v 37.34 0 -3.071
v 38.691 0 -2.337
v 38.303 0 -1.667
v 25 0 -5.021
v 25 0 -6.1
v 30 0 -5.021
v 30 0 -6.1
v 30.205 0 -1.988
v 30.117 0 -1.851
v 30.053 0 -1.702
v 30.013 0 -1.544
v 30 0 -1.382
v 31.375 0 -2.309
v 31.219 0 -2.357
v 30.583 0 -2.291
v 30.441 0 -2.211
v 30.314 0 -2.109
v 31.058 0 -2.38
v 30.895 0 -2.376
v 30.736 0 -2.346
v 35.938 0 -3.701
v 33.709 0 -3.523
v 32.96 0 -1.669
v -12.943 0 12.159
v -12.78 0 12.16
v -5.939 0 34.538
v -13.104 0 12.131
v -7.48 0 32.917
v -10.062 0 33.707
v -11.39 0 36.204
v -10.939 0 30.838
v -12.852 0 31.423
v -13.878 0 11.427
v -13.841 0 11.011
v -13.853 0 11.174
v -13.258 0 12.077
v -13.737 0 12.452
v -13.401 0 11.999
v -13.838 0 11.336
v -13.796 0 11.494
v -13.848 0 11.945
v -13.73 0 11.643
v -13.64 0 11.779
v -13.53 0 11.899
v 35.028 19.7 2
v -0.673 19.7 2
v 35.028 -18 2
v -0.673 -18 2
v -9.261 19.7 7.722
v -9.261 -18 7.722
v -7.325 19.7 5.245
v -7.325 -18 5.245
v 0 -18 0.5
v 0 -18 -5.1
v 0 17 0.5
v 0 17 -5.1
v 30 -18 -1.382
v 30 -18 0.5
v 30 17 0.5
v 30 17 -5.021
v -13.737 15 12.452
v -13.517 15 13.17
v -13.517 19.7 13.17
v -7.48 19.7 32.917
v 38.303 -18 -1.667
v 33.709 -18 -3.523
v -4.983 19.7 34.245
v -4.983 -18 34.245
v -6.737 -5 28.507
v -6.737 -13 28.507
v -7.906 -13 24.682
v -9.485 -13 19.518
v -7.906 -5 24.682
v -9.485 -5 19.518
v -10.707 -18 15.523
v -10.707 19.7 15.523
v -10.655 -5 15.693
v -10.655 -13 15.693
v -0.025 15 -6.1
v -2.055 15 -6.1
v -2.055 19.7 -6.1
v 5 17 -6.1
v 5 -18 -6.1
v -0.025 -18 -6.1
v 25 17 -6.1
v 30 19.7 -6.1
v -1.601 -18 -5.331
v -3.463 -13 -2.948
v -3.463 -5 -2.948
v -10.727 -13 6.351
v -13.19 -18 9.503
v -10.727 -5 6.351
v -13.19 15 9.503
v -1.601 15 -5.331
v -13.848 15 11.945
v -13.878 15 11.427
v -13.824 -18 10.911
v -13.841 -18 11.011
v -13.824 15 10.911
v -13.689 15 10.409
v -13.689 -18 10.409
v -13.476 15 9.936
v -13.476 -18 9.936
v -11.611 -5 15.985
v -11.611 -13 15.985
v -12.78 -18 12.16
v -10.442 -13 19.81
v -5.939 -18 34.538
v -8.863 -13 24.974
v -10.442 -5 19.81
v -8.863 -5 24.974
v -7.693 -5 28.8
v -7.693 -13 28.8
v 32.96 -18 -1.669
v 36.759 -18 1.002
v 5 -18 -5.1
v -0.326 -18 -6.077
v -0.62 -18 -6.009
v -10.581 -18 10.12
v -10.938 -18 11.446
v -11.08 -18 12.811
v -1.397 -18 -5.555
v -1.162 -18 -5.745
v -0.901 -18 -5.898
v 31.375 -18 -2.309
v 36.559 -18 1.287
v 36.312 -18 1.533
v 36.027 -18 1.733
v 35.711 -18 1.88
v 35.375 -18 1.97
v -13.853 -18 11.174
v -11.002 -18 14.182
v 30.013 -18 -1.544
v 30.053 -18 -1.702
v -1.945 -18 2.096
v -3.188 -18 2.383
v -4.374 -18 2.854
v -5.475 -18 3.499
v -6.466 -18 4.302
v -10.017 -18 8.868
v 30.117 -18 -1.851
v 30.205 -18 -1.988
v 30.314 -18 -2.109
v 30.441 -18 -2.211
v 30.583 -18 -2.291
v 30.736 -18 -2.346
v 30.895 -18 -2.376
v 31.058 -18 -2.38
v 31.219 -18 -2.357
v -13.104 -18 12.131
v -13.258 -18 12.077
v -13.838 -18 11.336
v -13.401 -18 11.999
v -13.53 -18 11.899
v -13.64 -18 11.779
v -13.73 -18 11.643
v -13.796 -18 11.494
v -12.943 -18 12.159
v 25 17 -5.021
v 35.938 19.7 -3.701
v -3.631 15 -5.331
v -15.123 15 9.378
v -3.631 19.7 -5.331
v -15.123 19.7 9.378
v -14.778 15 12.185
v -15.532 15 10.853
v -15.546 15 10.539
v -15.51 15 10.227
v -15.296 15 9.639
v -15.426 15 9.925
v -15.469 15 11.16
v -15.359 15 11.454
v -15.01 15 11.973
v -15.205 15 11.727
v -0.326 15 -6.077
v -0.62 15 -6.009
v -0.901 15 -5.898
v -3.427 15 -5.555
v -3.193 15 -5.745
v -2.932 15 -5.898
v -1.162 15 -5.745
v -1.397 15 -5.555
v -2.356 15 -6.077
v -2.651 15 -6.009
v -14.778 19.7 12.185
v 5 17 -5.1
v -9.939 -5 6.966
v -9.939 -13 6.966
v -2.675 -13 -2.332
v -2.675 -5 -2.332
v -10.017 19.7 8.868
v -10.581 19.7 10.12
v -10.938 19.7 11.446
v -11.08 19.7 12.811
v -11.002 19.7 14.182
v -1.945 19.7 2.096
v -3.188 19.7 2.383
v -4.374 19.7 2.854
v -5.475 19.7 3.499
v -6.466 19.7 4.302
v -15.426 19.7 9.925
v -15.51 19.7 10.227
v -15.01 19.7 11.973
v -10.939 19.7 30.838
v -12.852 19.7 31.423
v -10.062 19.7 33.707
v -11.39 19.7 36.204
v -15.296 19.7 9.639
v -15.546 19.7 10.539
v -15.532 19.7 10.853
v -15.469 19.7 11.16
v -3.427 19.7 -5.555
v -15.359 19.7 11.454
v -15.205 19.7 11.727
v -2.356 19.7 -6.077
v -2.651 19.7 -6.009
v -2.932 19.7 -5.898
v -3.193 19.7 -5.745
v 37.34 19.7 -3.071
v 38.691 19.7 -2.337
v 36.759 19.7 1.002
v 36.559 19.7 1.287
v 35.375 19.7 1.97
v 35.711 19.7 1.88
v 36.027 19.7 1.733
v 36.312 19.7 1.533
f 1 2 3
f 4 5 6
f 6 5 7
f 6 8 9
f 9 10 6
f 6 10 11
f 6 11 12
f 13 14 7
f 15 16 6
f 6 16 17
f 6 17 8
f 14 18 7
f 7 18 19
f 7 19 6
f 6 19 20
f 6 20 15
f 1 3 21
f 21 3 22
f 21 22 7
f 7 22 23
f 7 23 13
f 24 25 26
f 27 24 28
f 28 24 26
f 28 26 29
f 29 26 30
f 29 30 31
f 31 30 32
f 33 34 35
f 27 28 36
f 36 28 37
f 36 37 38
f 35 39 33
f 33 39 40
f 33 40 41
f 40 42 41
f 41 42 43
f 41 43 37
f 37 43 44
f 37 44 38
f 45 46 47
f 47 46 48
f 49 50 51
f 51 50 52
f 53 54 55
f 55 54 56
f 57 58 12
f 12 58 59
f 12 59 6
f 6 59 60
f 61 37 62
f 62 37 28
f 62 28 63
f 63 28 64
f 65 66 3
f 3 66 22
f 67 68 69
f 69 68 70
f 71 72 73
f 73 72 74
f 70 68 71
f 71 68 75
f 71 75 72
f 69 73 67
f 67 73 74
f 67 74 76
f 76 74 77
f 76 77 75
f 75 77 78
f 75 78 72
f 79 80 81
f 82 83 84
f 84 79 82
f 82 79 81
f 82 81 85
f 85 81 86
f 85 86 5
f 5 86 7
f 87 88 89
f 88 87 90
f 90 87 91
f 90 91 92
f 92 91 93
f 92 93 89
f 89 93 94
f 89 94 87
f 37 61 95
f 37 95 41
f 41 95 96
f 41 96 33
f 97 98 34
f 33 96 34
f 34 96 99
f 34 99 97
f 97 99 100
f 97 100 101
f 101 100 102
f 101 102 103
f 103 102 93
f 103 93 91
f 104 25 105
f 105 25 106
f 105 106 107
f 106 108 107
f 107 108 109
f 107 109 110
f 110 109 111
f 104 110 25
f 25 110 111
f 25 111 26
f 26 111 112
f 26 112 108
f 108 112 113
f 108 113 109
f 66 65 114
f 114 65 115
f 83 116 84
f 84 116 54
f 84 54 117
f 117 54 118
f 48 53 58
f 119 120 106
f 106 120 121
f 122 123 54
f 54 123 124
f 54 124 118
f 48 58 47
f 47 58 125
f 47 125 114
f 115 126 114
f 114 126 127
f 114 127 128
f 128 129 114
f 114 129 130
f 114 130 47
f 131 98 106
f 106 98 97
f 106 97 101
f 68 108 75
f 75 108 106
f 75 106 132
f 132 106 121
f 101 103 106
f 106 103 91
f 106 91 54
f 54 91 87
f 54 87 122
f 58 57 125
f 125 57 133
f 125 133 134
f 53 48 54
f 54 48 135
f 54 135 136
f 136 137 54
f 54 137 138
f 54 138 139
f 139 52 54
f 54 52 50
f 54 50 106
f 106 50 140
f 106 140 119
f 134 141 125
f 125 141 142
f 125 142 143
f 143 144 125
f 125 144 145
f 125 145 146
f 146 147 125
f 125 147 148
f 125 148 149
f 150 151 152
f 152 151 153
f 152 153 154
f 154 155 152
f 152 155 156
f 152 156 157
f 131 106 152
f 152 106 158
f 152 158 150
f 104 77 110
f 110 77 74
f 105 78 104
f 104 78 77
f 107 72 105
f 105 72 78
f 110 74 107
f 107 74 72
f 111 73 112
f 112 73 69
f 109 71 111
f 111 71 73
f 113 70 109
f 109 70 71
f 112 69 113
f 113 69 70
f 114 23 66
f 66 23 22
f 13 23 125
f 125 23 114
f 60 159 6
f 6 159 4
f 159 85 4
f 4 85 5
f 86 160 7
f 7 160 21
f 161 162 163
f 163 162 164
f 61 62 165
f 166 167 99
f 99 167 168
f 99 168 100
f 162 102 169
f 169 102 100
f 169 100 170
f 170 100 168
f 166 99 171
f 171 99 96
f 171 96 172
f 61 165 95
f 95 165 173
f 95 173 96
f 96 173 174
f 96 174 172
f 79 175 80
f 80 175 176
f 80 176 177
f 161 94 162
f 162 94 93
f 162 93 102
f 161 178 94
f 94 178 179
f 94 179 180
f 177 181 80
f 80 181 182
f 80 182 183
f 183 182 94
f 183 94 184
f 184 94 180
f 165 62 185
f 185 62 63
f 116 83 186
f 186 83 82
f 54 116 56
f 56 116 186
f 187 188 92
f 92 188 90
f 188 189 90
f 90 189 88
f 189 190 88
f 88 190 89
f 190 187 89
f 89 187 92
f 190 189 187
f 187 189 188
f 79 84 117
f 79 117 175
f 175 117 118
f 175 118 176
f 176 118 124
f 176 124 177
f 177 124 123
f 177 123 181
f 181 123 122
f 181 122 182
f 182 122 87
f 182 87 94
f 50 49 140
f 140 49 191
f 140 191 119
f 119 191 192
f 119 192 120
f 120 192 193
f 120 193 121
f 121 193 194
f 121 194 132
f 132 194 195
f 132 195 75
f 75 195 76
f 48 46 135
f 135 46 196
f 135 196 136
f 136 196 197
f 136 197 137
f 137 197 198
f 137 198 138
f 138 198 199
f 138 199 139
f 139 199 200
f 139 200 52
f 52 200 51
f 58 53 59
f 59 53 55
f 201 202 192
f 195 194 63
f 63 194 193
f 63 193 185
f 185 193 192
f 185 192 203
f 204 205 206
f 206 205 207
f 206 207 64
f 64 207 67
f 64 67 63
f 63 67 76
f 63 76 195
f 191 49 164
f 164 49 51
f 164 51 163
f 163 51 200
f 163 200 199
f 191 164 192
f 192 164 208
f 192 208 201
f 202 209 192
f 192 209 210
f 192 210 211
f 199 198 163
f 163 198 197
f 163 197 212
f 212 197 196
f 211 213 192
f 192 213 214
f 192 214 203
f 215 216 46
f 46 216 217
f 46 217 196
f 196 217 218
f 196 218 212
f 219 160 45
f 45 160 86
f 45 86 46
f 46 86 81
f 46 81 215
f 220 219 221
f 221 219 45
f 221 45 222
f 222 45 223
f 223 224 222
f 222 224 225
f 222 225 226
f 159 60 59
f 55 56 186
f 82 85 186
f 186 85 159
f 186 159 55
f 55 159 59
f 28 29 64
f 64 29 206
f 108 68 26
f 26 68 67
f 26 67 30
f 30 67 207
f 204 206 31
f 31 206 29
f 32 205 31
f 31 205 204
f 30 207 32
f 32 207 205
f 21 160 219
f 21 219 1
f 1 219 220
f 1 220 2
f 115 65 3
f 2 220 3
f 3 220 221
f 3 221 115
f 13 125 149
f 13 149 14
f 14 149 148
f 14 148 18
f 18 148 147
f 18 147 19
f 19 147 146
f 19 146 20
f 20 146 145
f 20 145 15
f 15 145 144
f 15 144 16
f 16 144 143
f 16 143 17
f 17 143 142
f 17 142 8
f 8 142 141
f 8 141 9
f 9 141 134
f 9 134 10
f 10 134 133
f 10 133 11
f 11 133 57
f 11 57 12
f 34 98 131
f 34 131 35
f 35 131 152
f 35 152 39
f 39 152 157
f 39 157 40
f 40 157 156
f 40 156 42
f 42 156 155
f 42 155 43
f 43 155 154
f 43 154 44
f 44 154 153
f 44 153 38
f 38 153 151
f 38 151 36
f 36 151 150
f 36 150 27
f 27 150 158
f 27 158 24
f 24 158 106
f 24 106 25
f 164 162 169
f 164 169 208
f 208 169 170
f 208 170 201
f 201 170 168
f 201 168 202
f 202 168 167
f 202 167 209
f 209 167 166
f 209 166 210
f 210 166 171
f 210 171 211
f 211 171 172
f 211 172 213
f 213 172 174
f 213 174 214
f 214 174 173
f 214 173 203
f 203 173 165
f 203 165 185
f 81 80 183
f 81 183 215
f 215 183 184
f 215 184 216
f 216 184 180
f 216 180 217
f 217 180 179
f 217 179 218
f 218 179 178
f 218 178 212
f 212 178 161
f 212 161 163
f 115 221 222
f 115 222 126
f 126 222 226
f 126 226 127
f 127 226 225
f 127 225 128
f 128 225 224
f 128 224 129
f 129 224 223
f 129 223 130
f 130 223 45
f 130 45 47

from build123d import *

# Parameters (mm, degrees)
EXTRUDE_THIN1_DEPTH  = 17
BOSS_EXTRUDE1_DEPTH  = 17
BOSS_EXTRUDE3_START  = 18
BOSS_EXTRUDE3_DEPTH  = 18
BOSS_EXTRUDE10_START = 18
BOSS_EXTRUDE10_DEPTH = 18
SKETCH6_W            = 4
SKETCH6_H            = 8
CUT_EXTRUDE1_DEPTH   = 1
BOSS_EXTRUDE4_DEPTH  = 18
CUT_EXTRUDE3_START   = -18
CUT_EXTRUDE3_DEPTH   = 18
BOSS_EXTRUDE5_DEPTH  = 17
BOSS_EXTRUDE6_DEPTH  = 2
SKETCH12_W           = 5
SKETCH12_H           = 1
BOSS_EXTRUDE8_DEPTH  = 33
SKETCH15_W           = 11.8
SKETCH15_H           = 8
CUT_EXTRUDE4_DEPTH   = 1
FILLET1_R            = 2
SKETCH16_W           = 30
SKETCH16_H           = 2
BOSS_EXTRUDE11_DEPTH = 18
BOSS_EXTRUDE12_START = -35
BOSS_EXTRUDE12_DEPTH = 35
SKETCH18_W           = 30
SKETCH18_H           = 35
CUT_EXTRUDE5_DEPTH   = 0.5
BOSS_EXTRUDE13_DEPTH = 2.7
BOSS_EXTRUDE14_START = -19.7
BOSS_EXTRUDE14_DEPTH = 19.7
SKETCH22_W           = 1
SKETCH22_H           = 18
BOSS_EXTRUDE15_DEPTH = 2
BOSS_EXTRUDE16_DEPTH = 19.7
BOSS_EXTRUDE17_DEPTH = 18
FILLET2_R            = 1
FILLET3_R            = 1
FILLET4_R            = 2
FILLET5_R            = 2
FILLET6_R            = 2


# Read off the part's stored shape, not the designer's step: Extrude-Thin1
with BuildPart() as part:
    # Extrude-Thin1 outline → Extrude-Thin1 (new body)
    with BuildSketch(Plane(origin=(0, 0, 0), x_dir=(1, 0, 0), z_dir=(0, 1, 0))):
        with BuildLine():
            Line((-13.736803788, -12.452377644), (-7.480049307, -32.917299422))
            Line((-7.480049307, -32.917299422), (-5.567439795, -32.332556012))
            Line((-5.567439795, -32.332556012), (-11.824194276, -11.867634235))
            ThreePointArc((-11.824194276, -11.867634235), (-11.857842102, -11.27507721), (-11.614075704, -10.733935872))
            Line((-11.614075704, -10.733935872), (-2, 1.571519877))
            Line((-2, 1.571519877), (-2, -2))
            Line((-2, -2), (32, -2))
            Line((32, -2), (32, 2.05634332))
            Line((32, 2.05634332), (34.813889941, 0.919457988))
            Line((34.813889941, 0.919457988), (35.563103127, 2.773825697))
            Line((35.563103127, 2.773825697), (30, 5.021465257))
            Line((30, 5.021465257), (30, 0))
            Line((30, 0), (0, 0))
            Line((0, 0), (0, 6.1))
            Line((0, 6.1), (-1, 6.1))
            Line((-1, 6.1), (-13.190097211, -9.502612921))
            ThreePointArc((-13.190097211, -9.502612921), (-13.824351917, -10.910606158), (-13.736803788, -12.452377644))
        make_face()
    extrude(amount=EXTRUDE_THIN1_DEPTH)

    # Sketch2 → Boss-Extrude1 (add)
    with BuildSketch(Plane(origin=(0, 17, 0), x_dir=(1, 0, 0), z_dir=(0, 1, 0))):
        Polygon((32, -2), (32, 2.05634332), (34.813889941, 0.919457988), align=None)
        Polygon((-2, -2), (-2, 1.571519877), (-5.158478254, -2.471147935), align=None)
    extrude(amount=-BOSS_EXTRUDE1_DEPTH)

    # Sketch5 → Boss-Extrude3 (add)
    with BuildSketch(Plane.XZ.offset(BOSS_EXTRUDE3_START)):
        with BuildLine():
            Line((-2, 2), (-5.158478254, 2.471147935))
            Line((-5.158478254, 2.471147935), (-11.614075704, 10.733935872))
            ThreePointArc((-11.614075704, 10.733935872), (-11.857842102, 11.27507721), (-11.824194276, 11.867634235))
            Line((-11.824194276, 11.867634235), (-5.567439795, 32.332556012))
            Line((-5.567439795, 32.332556012), (-6.523744551, 32.624927717))
            Line((-6.523744551, 32.624927717), (-12.780499032, 12.160005939))
            ThreePointArc((-12.780499032, 12.160005939), (-12.84109701, 11.092841684), (-12.402086458, 10.118274397))
            Line((-12.402086458, 10.118274397), (0, -5.755672387))
            Line((0, -5.755672387), (0, 2))
            Line((0, 2), (-2, 2))
        make_face()
    extrude(amount=-BOSS_EXTRUDE3_DEPTH)

    # Sketch14 → Boss-Extrude10 (add)
    with BuildSketch(Plane.XZ.offset(BOSS_EXTRUDE10_START)):
        with BuildLine():
            Line((0, -6.1), (-1, -6.1))
            Line((-1, -6.1), (-13.190097211, 9.502612921))
            ThreePointArc((-13.190097211, 9.502612921), (-13.824351917, 10.910606159), (-13.736803788, 12.452377644))
            Line((-13.736803788, 12.452377644), (-12.780499032, 12.160005939))
            ThreePointArc((-12.780499032, 12.160005939), (-12.84109701, 11.092841684), (-12.402086458, 10.118274397))
            Line((-12.402086458, 10.118274397), (0, -5.755672387))
            Line((0, -5.755672387), (0, -6.1))
        make_face()
    extrude(amount=-BOSS_EXTRUDE10_DEPTH)

    # Sketch6 → Cut-Extrude1 (cut)
    with BuildSketch(Plane(origin=(-15.087900976, 0, 4.612834247), x_dir=(0.2923717047227341, 0, 0.9563047559630363), z_dir=(-0.9563047559630363, 0, 0.2923717047227341))):
        with Locations((23.292015223, -9)):
            Rectangle(SKETCH6_W, SKETCH6_H)
        with Locations((13.892015223, -9)):
            Rectangle(SKETCH6_W, SKETCH6_H)
    extrude(amount=-CUT_EXTRUDE1_DEPTH, mode=Mode.SUBTRACT)

    # Sketch8 → Boss-Extrude4 (add)
    with BuildSketch(Plane.XZ):
        Polygon((30, -5.021465257), (35.563103127, -2.773825697), (34.813889941, -0.919457988), (32, 2), (30, 2), align=None)
    extrude(amount=BOSS_EXTRUDE4_DEPTH)

    # Sketch9 → Cut-Extrude3 (cut)
    with BuildSketch(Plane.XZ.offset(18).offset(CUT_EXTRUDE3_START)):
        Polygon((30, -5.021465257), (33.708735418, -3.523038884), (32.959522231, -1.668671175), (30, -2.864395772), align=None)
    extrude(amount=CUT_EXTRUDE3_DEPTH, mode=Mode.SUBTRACT)

    # Sketch10 → Boss-Extrude5 (add)
    with BuildSketch(Plane(origin=(0, 17, 0), x_dir=(1, 0, 0), z_dir=(0, 1, 0))):
        Polygon((30, 5.021465257), (25, 5.021465257), (25, 6.1), (30, 6.1), (35.937709721, 3.701009551), (35.563103127, 2.773825697), align=None)
    extrude(amount=-BOSS_EXTRUDE5_DEPTH)

    # Sketch4 → Boss-Extrude6 (add)
    with BuildSketch(Plane.XZ.offset(-17)):
        Polygon((0, 2), (0, -5.1), (5, -5.1), (5, -6.1), (0, -6.1), (-3.030429144, -6.1), (-16.354224478, 10.953680347), (-13.517385765, 13.170061658), (-11.614075704, 10.733935872), (-5.158478254, 2.471147935), (-2, 2), align=None)
    extrude(amount=BOSS_EXTRUDE6_DEPTH)

    # Sketch12 → Boss-Extrude8 (add)
    with BuildSketch(Plane.XZ.offset(-15)):
        with Locations((2.5, -5.6)):
            Rectangle(SKETCH12_W, SKETCH12_H)
    extrude(amount=BOSS_EXTRUDE8_DEPTH)

    # Sketch15 → Cut-Extrude4 (cut)
    with BuildSketch(Plane(origin=(-3.580362913, 0, -2.797286082), x_dir=(-0.6156614753256621, 0, 0.7880107536067191), z_dir=(-0.788010753606719, 0, -0.615661475325662))):
        with Locations((5.708795878, -9)):
            Rectangle(SKETCH15_W, SKETCH15_H)
    extrude(amount=-CUT_EXTRUDE4_DEPTH, mode=Mode.SUBTRACT)

    # Fillet1
    fillet1_edges = [part.edges().sort_by_distance(p)[0] for p in [
        (-1, -9, -6.1),
    ]]
    fillet(fillet1_edges, radius=FILLET1_R)

    # Sketch16 → Boss-Extrude11 (add)
    with BuildSketch(Plane.XZ):
        with Locations((15, 1)):
            Rectangle(SKETCH16_W, SKETCH16_H)
    extrude(amount=BOSS_EXTRUDE11_DEPTH)

    # Sketch17 → Boss-Extrude12 (add)
    with BuildSketch(Plane(origin=(0, 17, 0), x_dir=(1, 0, 0), z_dir=(0, 1, 0)).offset(BOSS_EXTRUDE12_START)):
        with BuildLine():
            Line((-0.672783951, -2), (-2, -2))
            Line((-2, -2), (-5.158478254, -2.471147935))
            Line((-5.158478254, -2.471147935), (-7.325420645, -5.244707716))
            ThreePointArc((-7.325420645, -5.244707716), (-4.373652198, -2.854412758), (-0.672783951, -2))
        make_face()
        with BuildLine():
            Line((-11.824194276, -11.867634235), (-10.706576434, -15.523197479))
            ThreePointArc((-10.706576434, -15.523197479), (-10.93812277, -11.445537112), (-9.260652859, -7.721691994))
            Line((-9.260652859, -7.721691994), (-11.614075704, -10.733935872))
            ThreePointArc((-11.614075704, -10.733935872), (-11.857842102, -11.27507721), (-11.824194276, -11.867634235))
        make_face()
    extrude(amount=BOSS_EXTRUDE12_DEPTH)

    # Sketch18 → Cut-Extrude5 (cut)
    with BuildSketch(Plane(origin=(0, 0, 0), x_dir=(-1, 0, 0), z_dir=(0, 0, -1))):
        with Locations((-15, -0.5)):
            Rectangle(SKETCH18_W, SKETCH18_H)
    extrude(amount=-CUT_EXTRUDE5_DEPTH, mode=Mode.SUBTRACT)

    # Sketch19 → Boss-Extrude13 (add)
    with BuildSketch(Plane(origin=(0, 17, 0), x_dir=(1, 0, 0), z_dir=(0, 1, 0))):
        with BuildLine():
            Line((5, 6.1), (25, 6.1))
            Line((25, 6.1), (30, 6.1))
            Line((30, 6.1), (35.937709721, 3.701009551))
            Line((35.937709721, 3.701009551), (34.813889941, 0.919457988))
            Line((34.813889941, 0.919457988), (32, -2))
            Line((32, -2), (-0.672783951, -2))
            ThreePointArc((-0.672783951, -2), (-4.373652198, -2.854412758), (-7.325420645, -5.244707716))
            Line((-7.325420645, -5.244707716), (-9.260652859, -7.721691994))
            ThreePointArc((-9.260652859, -7.721691994), (-10.93812277, -11.445537112), (-10.706576434, -15.523197479))
            Line((-10.706576434, -15.523197479), (-5.567439795, -32.332556012))
            Line((-5.567439795, -32.332556012), (-7.480049307, -32.917299422))
            Line((-7.480049307, -32.917299422), (-13.517385765, -13.170061658))
            Line((-13.517385765, -13.170061658), (-16.354224478, -10.953680347))
            Line((-16.354224478, -10.953680347), (-3.030429144, 6.1))
            Line((-3.030429144, 6.1), (5, 6.1))
        make_face()
    extrude(amount=BOSS_EXTRUDE13_DEPTH)

    # Sketch21 → Boss-Extrude14 (add)
    with BuildSketch(Plane(origin=(0, 19.7, 0), x_dir=(1, 0, 0), z_dir=(0, 1, 0)).offset(BOSS_EXTRUDE14_START)):
        Polygon((-4.982696385, -34.245165524), (-5.567439795, -32.332556012), (-10.062072148, -33.706703024), (-10.939187262, -30.837788757), (-12.851796774, -31.422532166), (-11.38993825, -36.204055946), align=None)
    extrude(amount=BOSS_EXTRUDE14_DEPTH)

    # Sketch22 → Boss-Extrude15 (add)
    with BuildSketch(Plane(origin=(8.564156426, 0, 28.01209347), x_dir=(0.9563047559630371, 0, -0.2923717047227314), z_dir=(0.2923717047227314, 0, 0.9563047559630371))):
        with Locations((-15.277293674, -9)):
            Rectangle(SKETCH22_W, SKETCH22_H)
    extrude(amount=BOSS_EXTRUDE15_DEPTH)

    # Sketch23 → Boss-Extrude16 (add)
    with BuildSketch(Plane(origin=(0, 19.7, 0), x_dir=(1, 0, 0), z_dir=(0, 1, 0))):
        with BuildLine():
            Line((34.813889941, 0.919457988), (35.937709721, 3.701009551))
            ThreePointArc((35.937709721, 3.701009551), (37.340267778, 3.071287576), (38.690914739, 2.336800231))
            Line((38.690914739, 2.336800231), (36.18124714, -2))
            Line((36.18124714, -2), (32, -2))
            Line((32, -2), (34.813889941, 0.919457988))
        make_face()
    extrude(amount=-BOSS_EXTRUDE16_DEPTH)

    # Sketch24 → Boss-Extrude17 (add)
    with BuildSketch(Plane.XZ):
        Polygon((36.18124714, 2), (32, 2), (34.813889941, -0.919457988), (35.563103127, -2.773825697), (38.303171931, -1.66676604), align=None)
    extrude(amount=BOSS_EXTRUDE17_DEPTH)

    # Fillet2
    fillet2_edges = [part.edges().sort_by_distance(p)[0] for p in [
        (30, -9, -2.864395772),
    ]]
    fillet(fillet2_edges, radius=FILLET2_R)

    # Fillet3
    # the kernel refuses this fillet: 1 mm, written as the material it takes off along each edge
    with BuildSketch(Plane(origin=(-13.736803788, -21.611842033, 12.452377644), x_dir=(0.956304755965878, 0, -0.29237170471343904), z_dir=(0, 1, 0))) as fillet3_piece_1:
        with BuildLine():
            CenterArc((1.222368407, 0.974962713), FILLET3_R, 154.303641792, 102.848179104)
            Line((0.321263823, 1.408564523), (0.303241732, 1.417236559))
            ThreePointArc((0.303241732, 1.417236559), (0.061834895, 0.726815775), (-0.02, 0))
            Line((-0.02, 0), (0, -0.02))
            ThreePointArc((0, -0.02), (0.5, -0.02), (0.995552632, -0.019499254))
            Line((0.995552632, -0.019499254), (1, 0))
        make_face()
    extrude(amount=21.611842033, mode=Mode.SUBTRACT)

    # Fillet4
    fillet4_edges = [part.edges().sort_by_distance(p)[0] for p in [
        (-16.354224478, 17.35, 10.953680347),
    ]]
    fillet(fillet4_edges, radius=FILLET4_R)

    # Fillet5
    fillet5_edges = [part.edges().sort_by_distance(p)[0] for p in [
        (-3.030429144, 17.35, -6.1),
    ]]
    fillet(fillet5_edges, radius=FILLET5_R)

    # Fillet6
    fillet6_edges = [part.edges().sort_by_distance(p)[0] for p in [
        (36.18124714, 0.85, 2),
    ]]
    fillet(fillet6_edges, radius=FILLET6_R)


solid = part.part
